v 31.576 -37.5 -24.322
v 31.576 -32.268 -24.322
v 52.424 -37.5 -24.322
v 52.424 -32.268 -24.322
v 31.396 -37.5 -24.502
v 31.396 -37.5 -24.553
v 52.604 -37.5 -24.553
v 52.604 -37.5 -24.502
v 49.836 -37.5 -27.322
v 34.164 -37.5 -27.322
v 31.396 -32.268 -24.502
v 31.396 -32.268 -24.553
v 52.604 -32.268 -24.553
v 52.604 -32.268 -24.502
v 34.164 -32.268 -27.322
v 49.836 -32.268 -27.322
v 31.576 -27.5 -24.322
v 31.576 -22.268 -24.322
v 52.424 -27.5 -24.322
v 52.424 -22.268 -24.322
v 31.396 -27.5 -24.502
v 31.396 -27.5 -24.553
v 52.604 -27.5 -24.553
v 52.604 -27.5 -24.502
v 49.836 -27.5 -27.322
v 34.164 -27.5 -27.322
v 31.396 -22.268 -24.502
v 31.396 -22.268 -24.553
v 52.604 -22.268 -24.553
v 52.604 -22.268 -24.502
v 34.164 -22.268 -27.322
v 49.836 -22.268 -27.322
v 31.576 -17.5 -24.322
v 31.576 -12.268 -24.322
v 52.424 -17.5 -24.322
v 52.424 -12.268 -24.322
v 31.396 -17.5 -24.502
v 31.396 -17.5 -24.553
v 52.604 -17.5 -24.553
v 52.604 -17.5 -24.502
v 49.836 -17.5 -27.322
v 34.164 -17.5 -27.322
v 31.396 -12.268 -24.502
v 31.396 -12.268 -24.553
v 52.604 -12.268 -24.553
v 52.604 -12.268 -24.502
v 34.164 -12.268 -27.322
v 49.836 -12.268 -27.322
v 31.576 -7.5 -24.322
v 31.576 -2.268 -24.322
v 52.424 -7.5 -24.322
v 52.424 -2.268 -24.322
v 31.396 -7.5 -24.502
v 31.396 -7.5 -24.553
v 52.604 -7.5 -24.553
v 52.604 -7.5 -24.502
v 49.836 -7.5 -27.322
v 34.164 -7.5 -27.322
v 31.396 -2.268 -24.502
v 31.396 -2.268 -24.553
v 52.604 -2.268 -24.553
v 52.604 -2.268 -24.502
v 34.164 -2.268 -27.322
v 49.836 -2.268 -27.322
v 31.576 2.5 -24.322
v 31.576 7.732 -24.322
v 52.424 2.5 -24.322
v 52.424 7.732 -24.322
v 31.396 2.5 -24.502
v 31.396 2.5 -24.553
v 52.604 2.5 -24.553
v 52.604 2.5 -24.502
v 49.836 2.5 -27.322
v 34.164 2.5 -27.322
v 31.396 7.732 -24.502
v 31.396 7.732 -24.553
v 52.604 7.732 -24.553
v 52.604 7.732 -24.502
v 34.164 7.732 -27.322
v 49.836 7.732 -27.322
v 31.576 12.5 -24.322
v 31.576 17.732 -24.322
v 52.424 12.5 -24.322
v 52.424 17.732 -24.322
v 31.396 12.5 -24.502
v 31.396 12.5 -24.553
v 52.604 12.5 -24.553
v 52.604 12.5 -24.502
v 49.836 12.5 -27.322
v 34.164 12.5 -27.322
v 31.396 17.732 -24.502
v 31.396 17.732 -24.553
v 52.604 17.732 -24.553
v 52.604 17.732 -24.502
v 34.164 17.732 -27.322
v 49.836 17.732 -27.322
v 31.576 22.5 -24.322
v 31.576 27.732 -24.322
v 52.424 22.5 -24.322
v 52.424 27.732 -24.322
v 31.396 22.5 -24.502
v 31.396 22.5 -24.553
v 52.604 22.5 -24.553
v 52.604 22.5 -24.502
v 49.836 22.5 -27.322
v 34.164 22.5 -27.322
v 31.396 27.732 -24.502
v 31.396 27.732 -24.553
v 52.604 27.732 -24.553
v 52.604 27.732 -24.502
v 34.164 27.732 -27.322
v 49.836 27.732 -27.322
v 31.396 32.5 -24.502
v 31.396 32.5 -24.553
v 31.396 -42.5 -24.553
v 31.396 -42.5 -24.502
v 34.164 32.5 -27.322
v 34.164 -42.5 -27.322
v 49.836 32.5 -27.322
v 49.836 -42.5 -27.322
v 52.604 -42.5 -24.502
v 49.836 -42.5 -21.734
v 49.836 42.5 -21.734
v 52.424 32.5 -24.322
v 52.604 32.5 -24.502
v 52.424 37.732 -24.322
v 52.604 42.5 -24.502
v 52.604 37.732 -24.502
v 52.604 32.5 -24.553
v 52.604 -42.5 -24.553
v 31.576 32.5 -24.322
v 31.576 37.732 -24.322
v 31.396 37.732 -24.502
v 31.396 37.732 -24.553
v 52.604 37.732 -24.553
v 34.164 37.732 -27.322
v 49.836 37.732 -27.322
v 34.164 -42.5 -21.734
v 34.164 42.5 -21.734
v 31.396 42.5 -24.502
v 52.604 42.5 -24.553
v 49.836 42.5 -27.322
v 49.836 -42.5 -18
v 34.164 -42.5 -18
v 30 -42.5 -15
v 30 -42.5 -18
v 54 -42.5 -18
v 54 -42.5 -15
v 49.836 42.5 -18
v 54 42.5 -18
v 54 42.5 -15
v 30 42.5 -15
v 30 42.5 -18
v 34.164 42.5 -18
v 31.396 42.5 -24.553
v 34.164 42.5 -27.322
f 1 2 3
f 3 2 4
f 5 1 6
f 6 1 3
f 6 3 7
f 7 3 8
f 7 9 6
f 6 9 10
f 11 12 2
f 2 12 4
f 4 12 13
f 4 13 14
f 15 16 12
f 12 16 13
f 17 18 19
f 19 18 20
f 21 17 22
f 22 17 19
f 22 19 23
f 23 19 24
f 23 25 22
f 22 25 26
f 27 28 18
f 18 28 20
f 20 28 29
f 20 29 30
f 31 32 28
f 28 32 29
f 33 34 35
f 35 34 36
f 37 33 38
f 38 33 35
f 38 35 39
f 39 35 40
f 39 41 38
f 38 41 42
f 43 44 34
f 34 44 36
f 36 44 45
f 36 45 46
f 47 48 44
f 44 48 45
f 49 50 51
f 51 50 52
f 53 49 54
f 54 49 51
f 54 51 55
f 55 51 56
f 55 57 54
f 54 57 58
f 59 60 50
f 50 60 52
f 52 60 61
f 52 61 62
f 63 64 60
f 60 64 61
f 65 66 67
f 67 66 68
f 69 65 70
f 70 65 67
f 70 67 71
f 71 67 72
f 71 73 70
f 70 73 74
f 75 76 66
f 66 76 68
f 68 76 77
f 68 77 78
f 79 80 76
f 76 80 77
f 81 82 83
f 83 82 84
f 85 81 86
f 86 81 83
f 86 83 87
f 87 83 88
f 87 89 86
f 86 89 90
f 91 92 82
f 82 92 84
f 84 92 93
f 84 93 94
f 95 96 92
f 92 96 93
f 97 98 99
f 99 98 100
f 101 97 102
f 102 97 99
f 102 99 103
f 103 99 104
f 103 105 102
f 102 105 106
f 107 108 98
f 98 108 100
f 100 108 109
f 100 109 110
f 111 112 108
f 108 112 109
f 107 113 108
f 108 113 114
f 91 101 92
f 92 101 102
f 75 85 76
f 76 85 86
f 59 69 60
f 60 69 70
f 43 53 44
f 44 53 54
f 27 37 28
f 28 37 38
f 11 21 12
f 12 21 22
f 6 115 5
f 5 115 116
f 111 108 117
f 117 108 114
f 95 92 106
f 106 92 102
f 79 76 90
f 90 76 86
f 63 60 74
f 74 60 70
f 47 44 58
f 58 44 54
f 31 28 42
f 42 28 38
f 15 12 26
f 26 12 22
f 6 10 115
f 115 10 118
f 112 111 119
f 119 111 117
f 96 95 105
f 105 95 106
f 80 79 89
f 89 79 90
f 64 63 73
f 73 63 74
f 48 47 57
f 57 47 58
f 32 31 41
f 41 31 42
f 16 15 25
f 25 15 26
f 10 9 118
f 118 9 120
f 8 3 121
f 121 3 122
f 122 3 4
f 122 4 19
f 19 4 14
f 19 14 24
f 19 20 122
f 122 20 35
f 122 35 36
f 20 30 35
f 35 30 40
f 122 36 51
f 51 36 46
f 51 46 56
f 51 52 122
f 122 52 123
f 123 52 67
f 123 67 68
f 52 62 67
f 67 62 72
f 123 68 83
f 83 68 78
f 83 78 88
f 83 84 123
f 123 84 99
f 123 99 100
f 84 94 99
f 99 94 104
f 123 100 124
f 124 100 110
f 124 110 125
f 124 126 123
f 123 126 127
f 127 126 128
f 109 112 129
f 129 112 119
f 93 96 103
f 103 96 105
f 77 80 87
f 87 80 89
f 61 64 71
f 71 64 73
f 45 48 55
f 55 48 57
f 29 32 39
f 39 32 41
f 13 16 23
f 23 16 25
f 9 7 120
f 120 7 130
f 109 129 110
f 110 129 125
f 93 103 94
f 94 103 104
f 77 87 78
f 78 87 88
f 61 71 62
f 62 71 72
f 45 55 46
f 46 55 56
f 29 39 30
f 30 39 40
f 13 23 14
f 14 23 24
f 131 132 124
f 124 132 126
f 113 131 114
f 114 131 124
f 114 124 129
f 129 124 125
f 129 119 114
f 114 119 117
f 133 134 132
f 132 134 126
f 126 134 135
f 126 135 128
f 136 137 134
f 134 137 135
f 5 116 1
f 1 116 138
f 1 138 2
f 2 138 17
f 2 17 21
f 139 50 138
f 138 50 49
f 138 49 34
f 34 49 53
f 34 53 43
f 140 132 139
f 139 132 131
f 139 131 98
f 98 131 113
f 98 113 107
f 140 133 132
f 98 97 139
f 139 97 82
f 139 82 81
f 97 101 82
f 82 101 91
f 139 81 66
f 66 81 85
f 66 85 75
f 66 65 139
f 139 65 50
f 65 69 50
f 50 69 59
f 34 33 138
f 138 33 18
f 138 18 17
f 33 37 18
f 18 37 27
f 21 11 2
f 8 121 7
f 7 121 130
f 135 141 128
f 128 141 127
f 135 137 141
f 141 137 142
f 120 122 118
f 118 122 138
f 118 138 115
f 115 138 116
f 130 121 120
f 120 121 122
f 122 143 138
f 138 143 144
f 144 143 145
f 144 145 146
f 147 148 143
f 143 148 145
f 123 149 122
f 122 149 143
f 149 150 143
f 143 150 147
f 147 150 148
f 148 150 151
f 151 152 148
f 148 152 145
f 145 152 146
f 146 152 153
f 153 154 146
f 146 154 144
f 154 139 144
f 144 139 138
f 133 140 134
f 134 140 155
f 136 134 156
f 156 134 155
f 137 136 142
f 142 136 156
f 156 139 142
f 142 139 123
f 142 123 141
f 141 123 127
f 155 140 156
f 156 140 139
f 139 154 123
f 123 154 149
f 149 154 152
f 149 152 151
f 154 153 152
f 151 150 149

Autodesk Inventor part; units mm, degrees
ref_plane "YZ Plane" through (0, 0, 0) normal (1, 0, 0) x (0, 1, 0)
ref_plane "XZ Plane" through (0, 0, 0) normal (0, 1, 0) x (-1, 0, 0)
ref_plane "XY Plane" through (0, 0, 0) normal (0, 0, 1) x (1, 0, 0)
sketch "Эскиз1" plane through (0, 0, 0) normal (0, 1, 0) x (-1, 0, 0)
  line L0 (-49.8359, -27.3218) -> (-34.1641, -27.3218)
  line L1 (-34.1641, -27.3218) -> (-31.3955, -24.5532)
  line L2 (-31.3955, -24.5532) -> (-31.3955, -24.5024)
  line L3 (-31.3955, -24.5024) -> (-34.1641, -21.7338)
  line L4 (-34.1641, -21.7338) -> (-34.1641, -18)
  line L5 (-34.1641, -18) -> (-30, -18)
  line L6 (-30, -18) -> (-30, -15)
  line L7 (-30, -15) -> (-54, -15)
  line L8 (-54, -15) -> (-54, -18)
  line L9 (-54, -18) -> (-49.8359, -18)
  line L10 (-49.8359, -18) -> (-49.8359, -21.7338)
  line L11 (-49.8359, -21.7338) -> (-52.6045, -24.5024)
  line L12 (-52.6045, -24.5024) -> (-52.6045, -24.5532)
  line L13 (-52.6045, -24.5532) -> (-49.8359, -27.3218)
  line L14 (-56.1832, -23.1562) -> (-23.3808, -23.1562) construction
  line L15 (-55.8733, -25.8994) -> (-24.0699, -25.8994) construction
  line L16 (-55.8733, -24.5278) -> (-24.0699, -24.5278) construction
  line L17 (-25.0606, -25.8994) -> (-25.0606, -24.5278) construction
  line L18 (-26.6052, -24.5278) -> (-26.6052, -23.1562) construction
  line L19 (-37.1641, -27.3218) -> (-38.6641, -24.3218)
  line L20 (-38.6641, -24.3218) -> (-45.3359, -24.3218)
  line L21 (-45.3359, -24.3218) -> (-46.8359, -27.3218)
  point P0 (0, 0)
  point P1 (-31.3955, -24.5278)
  dimension "d0" = 21.209
  dimension "d1" = 9.3218
  dimension "d2" = 15.6718
  dimension "d3" = 4.1656
  dimension "d4" = 2.7432
  dimension "d5" = 45
  dimension "d6" = 45
  dimension "d7" = 45
  dimension "d8" = 3
  dimension "d9" = 24
  dimension "d10" = 15
  dimension "d11" = 30
  dimension "d23" = 3
  dimension "d24" = 3
  dimension "d25" = 1.5
  dimension "d26" = 1.5
  dimension "d27" = 3
extrude "Выдавливание1" add sketch "Эскиз1" along normal mid plane 85
sketch "Эскиз2" plane through (54, -42.5, -18) normal (1, 0, 0) x (0, 0, -1)
  line L0 (9.3218, 85) -> (6.5532, 85) projected
  line L1 (6.3218, 85) -> (6.3218, 0)
  line L2 (6.5532, 0) -> (9.3218, 0) projected
  line L3 (9.3218, 85) -> (9.3218, 0) projected
  line L4 (9.3218, 0) -> (9.3218, 85) projected
  line L5 (9.3218, 80.2324) -> (6.3218, 80.2324)
  line L6 (9.3218, 75) -> (6.3218, 75)
  point P0 (-18, 42.5)
  dimension "d14" = 3
  dimension "d15" = 5.2324
  dimension "d16" = 10
extrude "Выдавливание2" cut sketch "Эскиз2" against normal through all
pattern_linear "Прямоуг.массив1" count 8 spacing 10 along (0, -1, 0) of "Выдавливание2"
equation "\"d24\" = d23"
equation "\"d26\" = d25"
properties part number "Rail_3DПЕЧАТЬ"
